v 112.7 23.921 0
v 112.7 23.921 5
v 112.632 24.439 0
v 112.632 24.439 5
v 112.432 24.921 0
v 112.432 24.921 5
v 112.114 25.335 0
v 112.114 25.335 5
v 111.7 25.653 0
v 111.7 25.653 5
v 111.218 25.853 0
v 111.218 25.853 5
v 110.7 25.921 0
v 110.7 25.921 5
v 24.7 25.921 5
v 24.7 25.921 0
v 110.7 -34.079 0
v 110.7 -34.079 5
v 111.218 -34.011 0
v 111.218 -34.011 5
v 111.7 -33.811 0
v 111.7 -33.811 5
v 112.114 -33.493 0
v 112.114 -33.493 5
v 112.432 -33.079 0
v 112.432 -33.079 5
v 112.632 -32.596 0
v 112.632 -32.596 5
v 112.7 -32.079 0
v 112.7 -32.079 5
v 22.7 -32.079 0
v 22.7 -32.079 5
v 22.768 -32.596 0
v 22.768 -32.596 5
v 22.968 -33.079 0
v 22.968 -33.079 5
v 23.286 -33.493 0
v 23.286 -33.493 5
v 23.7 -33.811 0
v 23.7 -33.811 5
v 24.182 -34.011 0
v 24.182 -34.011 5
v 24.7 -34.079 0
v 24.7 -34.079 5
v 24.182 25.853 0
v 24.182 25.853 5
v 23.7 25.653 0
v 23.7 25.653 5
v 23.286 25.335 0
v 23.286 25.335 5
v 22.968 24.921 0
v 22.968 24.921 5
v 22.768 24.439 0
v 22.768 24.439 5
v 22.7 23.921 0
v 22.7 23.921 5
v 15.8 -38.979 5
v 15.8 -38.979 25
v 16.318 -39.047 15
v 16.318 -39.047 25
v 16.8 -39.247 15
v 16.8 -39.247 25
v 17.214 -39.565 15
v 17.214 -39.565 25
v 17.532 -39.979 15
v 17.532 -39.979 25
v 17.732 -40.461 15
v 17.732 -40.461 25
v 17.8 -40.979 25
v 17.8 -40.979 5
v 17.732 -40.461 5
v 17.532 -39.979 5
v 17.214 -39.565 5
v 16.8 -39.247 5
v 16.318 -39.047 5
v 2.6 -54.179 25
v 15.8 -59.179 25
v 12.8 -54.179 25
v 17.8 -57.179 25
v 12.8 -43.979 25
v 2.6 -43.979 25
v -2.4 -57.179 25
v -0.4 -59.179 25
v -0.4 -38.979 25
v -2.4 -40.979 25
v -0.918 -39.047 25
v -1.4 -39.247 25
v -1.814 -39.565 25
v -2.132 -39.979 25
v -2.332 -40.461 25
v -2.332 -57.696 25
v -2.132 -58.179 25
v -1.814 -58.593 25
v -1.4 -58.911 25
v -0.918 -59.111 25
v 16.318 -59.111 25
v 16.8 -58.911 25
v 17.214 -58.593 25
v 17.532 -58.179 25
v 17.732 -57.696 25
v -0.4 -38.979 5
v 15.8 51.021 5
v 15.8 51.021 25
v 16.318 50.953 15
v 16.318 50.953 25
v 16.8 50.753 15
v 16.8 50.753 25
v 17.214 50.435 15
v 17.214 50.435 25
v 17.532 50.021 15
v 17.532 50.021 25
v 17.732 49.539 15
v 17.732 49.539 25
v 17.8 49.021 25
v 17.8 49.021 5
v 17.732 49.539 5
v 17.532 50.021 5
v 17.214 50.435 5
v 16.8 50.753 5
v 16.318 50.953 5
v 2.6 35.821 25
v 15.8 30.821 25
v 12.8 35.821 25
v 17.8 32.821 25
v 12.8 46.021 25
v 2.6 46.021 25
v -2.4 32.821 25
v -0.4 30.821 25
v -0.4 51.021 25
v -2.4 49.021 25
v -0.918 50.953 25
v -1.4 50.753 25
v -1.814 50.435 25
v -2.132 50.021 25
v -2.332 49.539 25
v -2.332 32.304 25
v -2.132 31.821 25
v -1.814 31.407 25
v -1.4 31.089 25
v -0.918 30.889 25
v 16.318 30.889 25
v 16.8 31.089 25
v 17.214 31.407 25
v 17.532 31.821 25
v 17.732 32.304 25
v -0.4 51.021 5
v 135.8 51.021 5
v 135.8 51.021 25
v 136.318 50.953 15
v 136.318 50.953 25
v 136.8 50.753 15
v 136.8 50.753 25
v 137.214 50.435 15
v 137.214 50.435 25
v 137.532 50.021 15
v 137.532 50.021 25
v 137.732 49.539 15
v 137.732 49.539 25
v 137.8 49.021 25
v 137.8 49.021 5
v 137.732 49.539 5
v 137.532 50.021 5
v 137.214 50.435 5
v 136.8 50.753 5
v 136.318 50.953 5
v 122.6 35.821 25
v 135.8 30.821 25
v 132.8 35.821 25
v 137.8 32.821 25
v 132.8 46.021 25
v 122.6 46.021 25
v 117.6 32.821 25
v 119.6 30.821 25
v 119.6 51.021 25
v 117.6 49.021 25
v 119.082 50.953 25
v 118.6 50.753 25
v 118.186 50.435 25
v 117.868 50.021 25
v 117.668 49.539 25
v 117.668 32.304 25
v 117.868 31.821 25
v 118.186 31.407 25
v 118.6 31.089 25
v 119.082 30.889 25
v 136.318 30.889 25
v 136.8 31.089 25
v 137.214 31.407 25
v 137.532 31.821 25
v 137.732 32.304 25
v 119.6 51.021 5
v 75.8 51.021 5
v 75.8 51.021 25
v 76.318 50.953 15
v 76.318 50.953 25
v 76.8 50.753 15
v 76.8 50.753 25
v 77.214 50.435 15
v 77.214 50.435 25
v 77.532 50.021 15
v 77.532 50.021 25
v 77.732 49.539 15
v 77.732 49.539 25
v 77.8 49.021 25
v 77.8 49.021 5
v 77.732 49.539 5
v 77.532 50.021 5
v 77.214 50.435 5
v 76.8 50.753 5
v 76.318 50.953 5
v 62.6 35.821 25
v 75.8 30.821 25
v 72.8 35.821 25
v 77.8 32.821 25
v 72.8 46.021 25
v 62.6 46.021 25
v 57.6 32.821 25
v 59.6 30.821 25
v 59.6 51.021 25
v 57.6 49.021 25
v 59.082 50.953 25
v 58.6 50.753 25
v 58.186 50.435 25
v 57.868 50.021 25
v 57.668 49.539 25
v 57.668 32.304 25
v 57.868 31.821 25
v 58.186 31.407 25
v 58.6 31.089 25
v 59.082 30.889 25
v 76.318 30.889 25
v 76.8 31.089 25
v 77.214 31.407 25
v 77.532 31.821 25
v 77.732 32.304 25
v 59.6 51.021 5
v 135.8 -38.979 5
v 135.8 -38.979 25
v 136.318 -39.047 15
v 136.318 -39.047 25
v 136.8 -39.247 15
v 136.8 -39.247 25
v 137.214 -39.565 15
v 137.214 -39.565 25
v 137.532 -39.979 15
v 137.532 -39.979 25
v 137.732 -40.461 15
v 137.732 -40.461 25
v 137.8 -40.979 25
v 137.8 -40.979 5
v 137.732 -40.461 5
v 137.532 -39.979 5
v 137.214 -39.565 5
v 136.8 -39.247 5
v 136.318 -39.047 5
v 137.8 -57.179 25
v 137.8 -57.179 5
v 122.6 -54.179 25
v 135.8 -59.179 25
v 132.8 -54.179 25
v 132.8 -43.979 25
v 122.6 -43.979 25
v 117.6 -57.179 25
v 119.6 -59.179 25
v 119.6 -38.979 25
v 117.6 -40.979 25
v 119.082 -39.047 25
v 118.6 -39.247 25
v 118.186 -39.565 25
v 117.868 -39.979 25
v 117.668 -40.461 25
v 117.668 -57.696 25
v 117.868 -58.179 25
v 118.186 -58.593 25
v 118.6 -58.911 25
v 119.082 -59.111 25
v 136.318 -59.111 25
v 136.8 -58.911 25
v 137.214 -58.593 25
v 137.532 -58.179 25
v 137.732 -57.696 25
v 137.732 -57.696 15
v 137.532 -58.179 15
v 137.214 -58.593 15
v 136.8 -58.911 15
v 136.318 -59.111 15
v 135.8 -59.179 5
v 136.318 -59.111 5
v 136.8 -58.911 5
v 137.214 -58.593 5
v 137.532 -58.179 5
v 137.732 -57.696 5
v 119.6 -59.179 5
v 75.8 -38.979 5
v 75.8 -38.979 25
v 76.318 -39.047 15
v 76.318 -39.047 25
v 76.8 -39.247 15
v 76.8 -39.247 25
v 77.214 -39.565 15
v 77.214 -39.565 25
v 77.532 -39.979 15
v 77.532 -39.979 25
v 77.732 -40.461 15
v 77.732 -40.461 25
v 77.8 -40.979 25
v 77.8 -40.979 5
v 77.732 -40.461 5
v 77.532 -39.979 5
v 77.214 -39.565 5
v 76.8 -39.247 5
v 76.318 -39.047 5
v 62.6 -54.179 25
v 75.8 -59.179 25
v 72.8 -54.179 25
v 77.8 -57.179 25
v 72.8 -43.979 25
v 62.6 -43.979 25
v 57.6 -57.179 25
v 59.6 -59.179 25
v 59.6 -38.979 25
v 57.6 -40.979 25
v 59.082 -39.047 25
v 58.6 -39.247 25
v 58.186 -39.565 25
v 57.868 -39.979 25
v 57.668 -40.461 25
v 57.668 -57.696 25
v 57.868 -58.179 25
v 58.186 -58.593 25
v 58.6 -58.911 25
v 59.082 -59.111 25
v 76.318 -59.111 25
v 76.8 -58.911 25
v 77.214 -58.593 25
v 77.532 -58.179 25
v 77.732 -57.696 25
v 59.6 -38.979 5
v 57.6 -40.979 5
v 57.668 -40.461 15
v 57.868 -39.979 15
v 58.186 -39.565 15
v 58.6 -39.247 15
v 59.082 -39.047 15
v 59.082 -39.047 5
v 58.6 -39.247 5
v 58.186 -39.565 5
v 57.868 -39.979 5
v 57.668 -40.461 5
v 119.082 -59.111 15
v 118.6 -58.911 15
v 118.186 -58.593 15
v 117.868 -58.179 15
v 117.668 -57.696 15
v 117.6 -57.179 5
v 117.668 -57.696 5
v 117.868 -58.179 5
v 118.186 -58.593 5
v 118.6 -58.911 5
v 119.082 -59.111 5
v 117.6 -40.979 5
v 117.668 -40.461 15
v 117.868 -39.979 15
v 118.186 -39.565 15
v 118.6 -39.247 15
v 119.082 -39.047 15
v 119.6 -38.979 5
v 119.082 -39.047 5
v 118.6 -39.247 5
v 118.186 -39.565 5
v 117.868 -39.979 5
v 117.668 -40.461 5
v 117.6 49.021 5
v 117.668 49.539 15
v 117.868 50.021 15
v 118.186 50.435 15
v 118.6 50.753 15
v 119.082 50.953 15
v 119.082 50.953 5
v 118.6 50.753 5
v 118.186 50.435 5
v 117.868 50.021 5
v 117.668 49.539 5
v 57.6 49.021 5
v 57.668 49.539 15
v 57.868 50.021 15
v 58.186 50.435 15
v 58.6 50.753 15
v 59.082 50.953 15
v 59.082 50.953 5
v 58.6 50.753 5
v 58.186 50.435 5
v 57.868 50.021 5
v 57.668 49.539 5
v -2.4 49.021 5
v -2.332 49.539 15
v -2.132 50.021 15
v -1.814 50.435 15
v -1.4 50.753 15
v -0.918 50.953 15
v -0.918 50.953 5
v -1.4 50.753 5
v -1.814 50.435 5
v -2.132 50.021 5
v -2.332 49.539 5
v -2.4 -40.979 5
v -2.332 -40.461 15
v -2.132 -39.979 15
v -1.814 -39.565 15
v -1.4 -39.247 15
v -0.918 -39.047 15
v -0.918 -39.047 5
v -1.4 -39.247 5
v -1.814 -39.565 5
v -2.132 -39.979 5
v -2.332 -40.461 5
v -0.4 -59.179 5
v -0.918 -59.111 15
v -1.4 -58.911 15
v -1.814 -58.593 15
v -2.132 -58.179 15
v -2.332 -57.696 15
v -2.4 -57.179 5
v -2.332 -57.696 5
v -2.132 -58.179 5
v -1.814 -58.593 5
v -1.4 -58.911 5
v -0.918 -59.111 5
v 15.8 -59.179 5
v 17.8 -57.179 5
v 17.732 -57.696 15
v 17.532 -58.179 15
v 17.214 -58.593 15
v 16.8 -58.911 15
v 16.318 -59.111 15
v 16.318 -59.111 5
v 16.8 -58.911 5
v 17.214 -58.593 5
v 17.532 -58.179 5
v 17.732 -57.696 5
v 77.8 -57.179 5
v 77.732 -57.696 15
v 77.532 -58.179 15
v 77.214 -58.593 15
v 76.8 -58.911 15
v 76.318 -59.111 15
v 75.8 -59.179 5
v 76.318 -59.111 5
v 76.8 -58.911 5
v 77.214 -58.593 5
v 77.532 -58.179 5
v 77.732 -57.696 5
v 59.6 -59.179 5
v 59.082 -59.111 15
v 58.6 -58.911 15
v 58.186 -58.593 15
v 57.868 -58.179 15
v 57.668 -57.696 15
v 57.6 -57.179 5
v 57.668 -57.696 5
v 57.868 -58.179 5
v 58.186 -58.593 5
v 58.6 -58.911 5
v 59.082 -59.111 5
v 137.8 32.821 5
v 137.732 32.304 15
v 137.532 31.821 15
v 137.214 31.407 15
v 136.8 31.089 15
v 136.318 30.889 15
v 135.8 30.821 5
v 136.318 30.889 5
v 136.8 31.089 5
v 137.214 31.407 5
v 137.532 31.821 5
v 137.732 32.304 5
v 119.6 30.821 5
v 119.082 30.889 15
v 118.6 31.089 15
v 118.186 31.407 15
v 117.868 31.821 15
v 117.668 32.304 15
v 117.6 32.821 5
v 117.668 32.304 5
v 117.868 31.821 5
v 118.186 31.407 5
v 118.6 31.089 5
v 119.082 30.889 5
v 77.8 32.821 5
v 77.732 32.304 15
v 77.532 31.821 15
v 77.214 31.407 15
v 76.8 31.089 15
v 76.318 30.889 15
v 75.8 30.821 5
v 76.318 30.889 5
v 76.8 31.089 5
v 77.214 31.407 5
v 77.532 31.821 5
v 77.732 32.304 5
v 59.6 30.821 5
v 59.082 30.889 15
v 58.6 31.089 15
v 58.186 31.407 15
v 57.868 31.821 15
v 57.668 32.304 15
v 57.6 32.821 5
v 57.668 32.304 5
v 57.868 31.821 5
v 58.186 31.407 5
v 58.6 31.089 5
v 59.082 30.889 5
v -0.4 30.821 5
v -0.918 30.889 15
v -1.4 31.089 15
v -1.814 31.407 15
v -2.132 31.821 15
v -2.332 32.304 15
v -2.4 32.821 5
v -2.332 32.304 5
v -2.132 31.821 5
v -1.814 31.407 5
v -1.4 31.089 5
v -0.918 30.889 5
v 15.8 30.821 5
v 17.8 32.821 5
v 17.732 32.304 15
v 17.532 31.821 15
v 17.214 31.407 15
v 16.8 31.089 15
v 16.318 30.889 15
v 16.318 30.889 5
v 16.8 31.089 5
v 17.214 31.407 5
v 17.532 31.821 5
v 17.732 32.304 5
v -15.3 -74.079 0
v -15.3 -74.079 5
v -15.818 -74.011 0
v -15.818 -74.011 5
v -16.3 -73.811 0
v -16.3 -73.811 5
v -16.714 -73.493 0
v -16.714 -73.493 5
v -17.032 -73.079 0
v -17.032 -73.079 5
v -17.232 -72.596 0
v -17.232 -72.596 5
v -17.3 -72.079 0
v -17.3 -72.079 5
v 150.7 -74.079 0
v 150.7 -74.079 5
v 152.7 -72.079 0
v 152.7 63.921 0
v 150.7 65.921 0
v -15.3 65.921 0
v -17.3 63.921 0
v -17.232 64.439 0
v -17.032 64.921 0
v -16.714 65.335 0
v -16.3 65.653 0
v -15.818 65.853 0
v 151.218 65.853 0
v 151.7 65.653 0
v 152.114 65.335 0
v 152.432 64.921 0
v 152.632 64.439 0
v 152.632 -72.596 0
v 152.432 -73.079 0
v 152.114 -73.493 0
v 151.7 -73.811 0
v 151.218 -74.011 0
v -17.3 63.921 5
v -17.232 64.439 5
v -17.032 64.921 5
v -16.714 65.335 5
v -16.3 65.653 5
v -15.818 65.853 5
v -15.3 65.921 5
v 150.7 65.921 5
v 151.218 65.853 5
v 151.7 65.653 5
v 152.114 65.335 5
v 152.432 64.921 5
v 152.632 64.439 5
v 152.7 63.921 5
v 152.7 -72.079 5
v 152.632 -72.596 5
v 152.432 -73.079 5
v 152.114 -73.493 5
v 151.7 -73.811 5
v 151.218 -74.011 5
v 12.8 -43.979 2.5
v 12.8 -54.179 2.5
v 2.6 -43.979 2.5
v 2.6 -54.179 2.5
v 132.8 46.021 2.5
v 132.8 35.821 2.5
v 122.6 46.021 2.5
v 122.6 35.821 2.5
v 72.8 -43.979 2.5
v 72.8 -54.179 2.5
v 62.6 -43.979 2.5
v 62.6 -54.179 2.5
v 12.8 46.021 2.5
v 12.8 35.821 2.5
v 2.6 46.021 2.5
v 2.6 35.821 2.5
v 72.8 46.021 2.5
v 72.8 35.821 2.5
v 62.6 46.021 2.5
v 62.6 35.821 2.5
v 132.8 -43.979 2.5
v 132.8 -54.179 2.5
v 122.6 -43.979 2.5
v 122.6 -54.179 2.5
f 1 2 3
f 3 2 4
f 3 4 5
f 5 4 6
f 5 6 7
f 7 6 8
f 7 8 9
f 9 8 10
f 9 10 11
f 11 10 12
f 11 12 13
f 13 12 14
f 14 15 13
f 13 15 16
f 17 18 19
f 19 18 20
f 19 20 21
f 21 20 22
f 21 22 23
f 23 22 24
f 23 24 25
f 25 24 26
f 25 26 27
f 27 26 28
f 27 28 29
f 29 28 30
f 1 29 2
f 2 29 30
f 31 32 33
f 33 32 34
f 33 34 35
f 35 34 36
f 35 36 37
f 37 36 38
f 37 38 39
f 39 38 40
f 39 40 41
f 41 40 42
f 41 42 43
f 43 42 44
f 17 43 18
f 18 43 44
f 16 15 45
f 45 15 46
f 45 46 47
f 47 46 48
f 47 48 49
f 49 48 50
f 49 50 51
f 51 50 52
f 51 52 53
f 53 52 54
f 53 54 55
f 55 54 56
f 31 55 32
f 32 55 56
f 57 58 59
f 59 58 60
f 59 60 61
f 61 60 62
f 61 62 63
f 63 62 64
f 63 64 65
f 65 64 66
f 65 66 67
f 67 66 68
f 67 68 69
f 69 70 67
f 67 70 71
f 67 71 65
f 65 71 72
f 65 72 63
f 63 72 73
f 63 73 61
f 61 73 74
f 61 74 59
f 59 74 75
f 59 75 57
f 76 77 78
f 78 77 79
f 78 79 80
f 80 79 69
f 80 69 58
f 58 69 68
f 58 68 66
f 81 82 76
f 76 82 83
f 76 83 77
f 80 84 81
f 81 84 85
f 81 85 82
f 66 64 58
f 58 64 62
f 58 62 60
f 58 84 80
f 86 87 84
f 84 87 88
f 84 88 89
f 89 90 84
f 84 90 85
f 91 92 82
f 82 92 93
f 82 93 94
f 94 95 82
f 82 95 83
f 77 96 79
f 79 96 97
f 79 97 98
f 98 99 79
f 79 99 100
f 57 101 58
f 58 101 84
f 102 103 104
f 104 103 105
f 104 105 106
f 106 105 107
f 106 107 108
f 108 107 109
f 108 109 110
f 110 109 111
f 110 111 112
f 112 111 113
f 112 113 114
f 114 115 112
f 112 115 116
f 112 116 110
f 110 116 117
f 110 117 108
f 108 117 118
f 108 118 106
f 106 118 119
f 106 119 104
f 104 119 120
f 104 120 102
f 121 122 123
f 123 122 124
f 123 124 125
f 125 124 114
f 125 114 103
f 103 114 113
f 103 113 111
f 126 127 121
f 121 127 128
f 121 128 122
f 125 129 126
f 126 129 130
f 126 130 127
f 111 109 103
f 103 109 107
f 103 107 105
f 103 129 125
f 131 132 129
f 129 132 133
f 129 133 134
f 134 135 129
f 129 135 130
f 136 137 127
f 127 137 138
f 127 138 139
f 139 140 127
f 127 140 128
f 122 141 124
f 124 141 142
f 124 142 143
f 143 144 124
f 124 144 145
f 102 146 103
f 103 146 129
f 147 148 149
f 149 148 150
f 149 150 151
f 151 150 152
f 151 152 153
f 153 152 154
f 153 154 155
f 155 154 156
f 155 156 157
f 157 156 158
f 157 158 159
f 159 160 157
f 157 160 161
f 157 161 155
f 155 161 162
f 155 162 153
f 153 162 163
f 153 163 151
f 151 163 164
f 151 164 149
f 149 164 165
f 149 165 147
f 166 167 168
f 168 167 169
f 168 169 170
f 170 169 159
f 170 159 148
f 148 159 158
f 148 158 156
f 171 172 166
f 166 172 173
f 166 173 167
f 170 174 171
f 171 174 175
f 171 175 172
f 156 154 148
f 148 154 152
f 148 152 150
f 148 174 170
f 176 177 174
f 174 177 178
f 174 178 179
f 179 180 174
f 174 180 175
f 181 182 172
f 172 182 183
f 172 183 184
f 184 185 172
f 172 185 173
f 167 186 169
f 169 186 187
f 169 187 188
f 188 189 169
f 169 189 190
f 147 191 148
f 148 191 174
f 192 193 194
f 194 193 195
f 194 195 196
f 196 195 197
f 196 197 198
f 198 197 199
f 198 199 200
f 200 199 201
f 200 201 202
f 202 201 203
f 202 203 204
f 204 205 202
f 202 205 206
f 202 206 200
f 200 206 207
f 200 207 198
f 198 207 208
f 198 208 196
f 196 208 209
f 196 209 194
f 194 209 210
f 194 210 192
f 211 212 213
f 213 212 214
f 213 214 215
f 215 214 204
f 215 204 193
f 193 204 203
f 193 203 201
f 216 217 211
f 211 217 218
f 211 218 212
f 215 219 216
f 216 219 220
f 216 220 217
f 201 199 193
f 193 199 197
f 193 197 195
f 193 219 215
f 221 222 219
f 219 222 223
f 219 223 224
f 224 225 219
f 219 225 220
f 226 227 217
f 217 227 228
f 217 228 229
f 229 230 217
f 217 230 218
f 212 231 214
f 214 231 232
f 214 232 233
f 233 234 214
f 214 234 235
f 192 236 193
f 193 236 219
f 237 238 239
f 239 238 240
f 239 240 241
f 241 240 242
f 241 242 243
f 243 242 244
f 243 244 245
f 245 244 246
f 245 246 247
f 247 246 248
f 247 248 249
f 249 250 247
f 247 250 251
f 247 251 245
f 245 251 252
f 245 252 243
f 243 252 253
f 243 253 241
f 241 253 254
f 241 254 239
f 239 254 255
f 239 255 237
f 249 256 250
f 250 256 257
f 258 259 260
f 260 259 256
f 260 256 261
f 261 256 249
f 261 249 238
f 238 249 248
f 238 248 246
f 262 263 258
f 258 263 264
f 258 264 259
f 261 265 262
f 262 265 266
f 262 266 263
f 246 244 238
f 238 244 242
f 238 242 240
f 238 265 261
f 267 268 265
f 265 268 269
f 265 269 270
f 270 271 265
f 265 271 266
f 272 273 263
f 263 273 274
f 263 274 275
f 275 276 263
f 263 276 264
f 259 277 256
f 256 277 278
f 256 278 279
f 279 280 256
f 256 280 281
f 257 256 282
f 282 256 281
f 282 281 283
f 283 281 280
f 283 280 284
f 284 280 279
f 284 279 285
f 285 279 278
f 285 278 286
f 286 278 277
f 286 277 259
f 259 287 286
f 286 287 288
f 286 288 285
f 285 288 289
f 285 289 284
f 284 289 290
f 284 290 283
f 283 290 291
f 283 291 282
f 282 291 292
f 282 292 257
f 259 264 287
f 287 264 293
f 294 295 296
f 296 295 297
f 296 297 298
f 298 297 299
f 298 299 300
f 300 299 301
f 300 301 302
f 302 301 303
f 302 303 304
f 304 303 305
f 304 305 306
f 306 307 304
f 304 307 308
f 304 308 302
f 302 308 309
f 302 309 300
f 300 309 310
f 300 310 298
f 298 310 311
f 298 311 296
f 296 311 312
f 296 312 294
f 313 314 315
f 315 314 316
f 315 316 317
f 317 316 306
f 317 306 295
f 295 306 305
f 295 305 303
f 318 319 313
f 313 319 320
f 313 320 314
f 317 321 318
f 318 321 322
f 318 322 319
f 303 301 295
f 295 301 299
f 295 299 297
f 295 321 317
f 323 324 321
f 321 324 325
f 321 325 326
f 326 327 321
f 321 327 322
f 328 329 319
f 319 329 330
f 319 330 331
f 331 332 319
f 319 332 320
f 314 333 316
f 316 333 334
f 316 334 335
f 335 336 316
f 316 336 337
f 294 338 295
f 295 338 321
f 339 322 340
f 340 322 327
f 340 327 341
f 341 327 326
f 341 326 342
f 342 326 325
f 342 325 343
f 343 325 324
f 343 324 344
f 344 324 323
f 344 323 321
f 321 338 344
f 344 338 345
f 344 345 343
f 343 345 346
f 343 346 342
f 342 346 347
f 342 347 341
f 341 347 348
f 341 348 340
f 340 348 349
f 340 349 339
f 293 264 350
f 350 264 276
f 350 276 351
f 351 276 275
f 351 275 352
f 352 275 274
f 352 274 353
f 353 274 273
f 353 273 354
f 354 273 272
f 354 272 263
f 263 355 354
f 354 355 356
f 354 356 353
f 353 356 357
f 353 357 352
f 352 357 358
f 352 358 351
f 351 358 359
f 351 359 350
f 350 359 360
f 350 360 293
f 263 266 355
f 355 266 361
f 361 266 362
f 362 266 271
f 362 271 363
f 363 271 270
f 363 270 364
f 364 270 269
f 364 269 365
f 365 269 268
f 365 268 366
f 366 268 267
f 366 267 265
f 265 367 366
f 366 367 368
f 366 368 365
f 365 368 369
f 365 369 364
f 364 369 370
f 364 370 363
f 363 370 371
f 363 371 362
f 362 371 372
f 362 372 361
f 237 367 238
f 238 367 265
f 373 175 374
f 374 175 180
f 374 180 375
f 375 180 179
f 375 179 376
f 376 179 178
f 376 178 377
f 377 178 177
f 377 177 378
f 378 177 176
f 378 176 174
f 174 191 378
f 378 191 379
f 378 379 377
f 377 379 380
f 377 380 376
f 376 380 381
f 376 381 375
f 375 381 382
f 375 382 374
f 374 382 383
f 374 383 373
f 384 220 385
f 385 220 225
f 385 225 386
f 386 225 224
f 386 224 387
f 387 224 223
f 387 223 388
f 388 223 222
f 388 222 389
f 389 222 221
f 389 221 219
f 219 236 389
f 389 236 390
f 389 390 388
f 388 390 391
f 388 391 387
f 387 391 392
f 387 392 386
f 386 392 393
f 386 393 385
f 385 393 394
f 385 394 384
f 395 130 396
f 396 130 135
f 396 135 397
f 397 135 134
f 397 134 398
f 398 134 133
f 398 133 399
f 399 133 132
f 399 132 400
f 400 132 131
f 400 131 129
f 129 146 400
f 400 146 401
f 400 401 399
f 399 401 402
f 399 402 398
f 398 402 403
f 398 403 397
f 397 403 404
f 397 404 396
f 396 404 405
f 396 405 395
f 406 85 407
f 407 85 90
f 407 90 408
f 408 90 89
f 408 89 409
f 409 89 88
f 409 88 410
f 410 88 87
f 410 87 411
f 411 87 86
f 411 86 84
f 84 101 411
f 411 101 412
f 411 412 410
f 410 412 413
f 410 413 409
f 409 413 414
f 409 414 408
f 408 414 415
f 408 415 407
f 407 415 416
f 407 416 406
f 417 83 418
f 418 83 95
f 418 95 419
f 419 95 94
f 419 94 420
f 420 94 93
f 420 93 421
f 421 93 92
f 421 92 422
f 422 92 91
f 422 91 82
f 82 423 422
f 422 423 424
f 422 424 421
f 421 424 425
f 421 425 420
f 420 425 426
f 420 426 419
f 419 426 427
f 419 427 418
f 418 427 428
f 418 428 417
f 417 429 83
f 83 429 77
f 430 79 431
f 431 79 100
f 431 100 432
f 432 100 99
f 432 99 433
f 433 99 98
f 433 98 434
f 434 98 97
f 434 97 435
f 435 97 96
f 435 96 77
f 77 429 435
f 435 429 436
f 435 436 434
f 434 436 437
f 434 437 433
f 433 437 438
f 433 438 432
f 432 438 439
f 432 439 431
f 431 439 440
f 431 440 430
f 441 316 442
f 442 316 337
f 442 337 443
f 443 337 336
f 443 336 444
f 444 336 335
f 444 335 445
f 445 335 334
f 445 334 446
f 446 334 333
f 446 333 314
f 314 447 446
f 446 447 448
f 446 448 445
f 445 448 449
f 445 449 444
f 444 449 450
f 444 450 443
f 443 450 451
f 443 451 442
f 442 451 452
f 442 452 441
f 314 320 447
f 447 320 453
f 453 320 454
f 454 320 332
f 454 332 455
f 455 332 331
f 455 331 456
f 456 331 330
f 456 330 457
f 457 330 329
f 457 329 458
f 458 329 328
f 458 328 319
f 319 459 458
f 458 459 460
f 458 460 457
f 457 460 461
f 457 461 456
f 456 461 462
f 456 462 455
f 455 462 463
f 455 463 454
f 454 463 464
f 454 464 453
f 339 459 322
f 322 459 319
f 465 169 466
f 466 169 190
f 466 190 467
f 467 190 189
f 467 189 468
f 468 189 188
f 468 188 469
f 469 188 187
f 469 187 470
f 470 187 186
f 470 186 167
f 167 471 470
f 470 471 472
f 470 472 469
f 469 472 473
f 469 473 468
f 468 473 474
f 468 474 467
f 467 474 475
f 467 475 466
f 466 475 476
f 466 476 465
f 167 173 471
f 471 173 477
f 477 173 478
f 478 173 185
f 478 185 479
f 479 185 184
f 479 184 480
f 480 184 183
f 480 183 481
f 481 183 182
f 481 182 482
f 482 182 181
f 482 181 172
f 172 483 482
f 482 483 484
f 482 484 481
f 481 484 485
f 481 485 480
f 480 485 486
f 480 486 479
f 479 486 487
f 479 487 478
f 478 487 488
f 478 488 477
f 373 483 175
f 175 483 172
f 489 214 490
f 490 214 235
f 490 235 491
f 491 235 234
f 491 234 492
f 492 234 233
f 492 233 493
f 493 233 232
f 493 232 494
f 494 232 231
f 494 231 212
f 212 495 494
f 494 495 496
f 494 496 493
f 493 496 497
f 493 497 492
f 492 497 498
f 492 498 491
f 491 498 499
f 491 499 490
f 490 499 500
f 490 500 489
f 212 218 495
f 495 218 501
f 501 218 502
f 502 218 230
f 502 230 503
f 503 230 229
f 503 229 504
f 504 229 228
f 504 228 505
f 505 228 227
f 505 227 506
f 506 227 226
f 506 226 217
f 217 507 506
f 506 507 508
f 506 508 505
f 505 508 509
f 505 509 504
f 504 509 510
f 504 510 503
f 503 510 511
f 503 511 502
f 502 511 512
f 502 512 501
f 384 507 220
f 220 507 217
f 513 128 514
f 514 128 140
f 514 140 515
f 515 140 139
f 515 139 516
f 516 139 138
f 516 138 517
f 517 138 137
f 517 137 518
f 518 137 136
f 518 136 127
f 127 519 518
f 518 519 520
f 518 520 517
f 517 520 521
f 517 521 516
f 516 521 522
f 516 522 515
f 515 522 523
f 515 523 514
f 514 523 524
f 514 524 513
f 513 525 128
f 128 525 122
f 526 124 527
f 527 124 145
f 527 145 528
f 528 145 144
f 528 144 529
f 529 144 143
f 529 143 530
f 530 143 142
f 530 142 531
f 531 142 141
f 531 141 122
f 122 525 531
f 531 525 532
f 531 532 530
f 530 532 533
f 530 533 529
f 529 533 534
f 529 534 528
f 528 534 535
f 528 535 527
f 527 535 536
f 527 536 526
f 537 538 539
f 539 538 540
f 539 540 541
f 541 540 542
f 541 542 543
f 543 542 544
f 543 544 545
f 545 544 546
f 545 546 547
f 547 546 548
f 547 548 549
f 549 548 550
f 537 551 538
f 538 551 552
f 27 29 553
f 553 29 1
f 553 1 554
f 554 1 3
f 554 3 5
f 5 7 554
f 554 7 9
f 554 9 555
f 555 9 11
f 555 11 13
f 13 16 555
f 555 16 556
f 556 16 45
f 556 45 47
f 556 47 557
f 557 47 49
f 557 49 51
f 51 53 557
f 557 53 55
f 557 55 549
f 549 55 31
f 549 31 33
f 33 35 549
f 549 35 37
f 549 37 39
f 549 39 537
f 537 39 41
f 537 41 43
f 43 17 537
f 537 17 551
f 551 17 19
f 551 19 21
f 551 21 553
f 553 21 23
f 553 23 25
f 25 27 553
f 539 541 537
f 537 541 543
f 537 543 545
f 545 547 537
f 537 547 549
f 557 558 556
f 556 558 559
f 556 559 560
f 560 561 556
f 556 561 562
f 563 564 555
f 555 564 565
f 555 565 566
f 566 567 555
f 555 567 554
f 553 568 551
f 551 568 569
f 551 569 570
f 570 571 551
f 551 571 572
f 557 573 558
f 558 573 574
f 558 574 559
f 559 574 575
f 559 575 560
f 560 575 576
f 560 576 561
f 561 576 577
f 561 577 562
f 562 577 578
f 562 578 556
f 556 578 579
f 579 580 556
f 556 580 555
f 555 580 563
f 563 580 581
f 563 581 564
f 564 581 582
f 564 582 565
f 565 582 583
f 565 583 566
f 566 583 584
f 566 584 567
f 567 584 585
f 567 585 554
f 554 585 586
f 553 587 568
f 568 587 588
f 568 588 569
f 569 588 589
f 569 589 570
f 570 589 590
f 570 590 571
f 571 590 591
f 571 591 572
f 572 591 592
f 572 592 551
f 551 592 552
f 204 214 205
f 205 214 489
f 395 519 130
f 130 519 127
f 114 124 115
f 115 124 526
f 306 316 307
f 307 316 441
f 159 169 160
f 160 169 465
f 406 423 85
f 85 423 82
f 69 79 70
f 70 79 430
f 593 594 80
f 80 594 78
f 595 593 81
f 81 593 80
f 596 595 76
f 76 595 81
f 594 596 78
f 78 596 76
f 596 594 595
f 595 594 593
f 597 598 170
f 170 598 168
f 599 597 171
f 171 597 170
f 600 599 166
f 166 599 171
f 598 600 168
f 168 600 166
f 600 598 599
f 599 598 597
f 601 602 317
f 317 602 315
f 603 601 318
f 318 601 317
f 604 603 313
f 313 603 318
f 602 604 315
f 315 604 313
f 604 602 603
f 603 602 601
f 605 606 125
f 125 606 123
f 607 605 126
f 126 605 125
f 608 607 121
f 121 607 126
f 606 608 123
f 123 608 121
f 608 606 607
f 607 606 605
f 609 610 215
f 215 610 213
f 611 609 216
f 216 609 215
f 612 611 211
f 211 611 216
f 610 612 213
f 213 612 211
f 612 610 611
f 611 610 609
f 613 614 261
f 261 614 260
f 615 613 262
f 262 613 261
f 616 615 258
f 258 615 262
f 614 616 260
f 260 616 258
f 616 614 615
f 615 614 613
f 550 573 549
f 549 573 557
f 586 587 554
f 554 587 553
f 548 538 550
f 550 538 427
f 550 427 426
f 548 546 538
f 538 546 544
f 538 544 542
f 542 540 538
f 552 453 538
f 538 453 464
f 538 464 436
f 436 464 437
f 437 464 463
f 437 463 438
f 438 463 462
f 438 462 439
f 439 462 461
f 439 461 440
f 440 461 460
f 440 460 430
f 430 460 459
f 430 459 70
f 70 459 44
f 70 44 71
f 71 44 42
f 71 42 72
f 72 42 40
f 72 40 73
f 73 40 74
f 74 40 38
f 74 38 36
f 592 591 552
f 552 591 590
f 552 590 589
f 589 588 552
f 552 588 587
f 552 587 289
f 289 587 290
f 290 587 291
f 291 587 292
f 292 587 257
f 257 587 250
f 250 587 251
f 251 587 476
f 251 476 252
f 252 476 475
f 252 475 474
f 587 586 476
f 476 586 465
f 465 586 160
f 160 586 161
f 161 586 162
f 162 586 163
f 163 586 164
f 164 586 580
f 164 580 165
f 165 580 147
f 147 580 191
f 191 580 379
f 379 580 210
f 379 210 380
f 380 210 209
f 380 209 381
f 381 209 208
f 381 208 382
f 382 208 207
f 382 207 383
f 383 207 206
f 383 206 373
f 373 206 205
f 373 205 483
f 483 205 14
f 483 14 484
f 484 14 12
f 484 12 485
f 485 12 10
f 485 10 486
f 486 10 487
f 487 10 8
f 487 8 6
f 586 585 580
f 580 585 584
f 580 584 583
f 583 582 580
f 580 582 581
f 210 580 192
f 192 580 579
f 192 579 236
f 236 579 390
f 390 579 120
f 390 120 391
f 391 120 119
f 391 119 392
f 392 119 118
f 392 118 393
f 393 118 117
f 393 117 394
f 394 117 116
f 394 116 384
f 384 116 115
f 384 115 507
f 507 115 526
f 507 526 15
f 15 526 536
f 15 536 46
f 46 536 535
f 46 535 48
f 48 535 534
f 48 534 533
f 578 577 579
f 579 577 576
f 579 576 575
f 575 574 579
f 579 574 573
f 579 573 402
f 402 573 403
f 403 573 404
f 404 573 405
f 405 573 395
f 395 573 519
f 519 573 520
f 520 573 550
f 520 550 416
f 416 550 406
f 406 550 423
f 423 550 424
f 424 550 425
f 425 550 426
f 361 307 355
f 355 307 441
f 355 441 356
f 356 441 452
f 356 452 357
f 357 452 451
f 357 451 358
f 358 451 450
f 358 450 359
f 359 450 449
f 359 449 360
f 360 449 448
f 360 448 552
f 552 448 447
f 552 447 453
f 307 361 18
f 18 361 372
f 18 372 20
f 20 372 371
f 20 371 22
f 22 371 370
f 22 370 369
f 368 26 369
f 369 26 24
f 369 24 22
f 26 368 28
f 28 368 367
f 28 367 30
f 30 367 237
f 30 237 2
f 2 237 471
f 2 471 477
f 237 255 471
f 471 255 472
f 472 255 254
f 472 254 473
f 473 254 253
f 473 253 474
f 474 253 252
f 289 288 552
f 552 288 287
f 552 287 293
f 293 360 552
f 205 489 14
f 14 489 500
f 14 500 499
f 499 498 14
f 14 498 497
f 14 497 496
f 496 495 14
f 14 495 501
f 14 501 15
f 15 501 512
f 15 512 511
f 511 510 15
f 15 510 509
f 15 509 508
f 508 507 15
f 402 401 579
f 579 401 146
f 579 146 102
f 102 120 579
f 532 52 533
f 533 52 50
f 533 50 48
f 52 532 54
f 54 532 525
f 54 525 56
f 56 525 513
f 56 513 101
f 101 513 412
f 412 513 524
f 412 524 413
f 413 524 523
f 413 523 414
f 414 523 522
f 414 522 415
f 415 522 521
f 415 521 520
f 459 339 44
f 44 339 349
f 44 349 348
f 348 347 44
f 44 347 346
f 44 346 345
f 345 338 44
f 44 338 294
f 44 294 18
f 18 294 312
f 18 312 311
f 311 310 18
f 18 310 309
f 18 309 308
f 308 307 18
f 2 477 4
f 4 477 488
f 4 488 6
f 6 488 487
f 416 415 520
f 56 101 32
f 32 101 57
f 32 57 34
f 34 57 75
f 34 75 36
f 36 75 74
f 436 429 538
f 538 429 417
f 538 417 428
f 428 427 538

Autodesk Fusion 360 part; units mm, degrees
sketch "Sketch1" plane through (0, 0, 0) normal (0, 0, 1) x (1, 0, 0)
  line L0 (-17.3001, 65.9212) -> (152.6999, 65.9212)
  line L1 (152.6999, 65.9212) -> (152.6999, -74.0788)
  line L2 (152.6999, -74.0788) -> (-17.3001, -74.0788)
  line L3 (-17.3001, -74.0788) -> (-17.3001, 65.9212)
  dimension "d1" = 140
  dimension "d2" = 170
extrude "Extrude1" add sketch "Sketch1" along normal blind 5
sketch "Sketch10" plane through (0, 0, 5) normal (0, 0, 1) x (-1, 0, 0)
  line L0 (17.3001, 74.0788) -> (-152.6999, 74.0788)
  line L1 (-152.6999, 74.0788) -> (-152.6999, -65.9212)
  line L2 (-152.6999, -65.9212) -> (17.3001, -65.9212)
  line L3 (17.3001, -65.9212) -> (17.3001, 74.0788)
  line L4 (-7.6999, -40.9212) -> (-127.6999, -40.9212)
  line L5 (-127.6999, -40.9212) -> (-127.6999, 49.0788)
  line L6 (-127.6999, 49.0788) -> (-7.6999, 49.0788)
  line L7 (-7.6999, 49.0788) -> (-7.6999, -40.9212)
  line L8 (17.3001, -65.9212) -> (-152.6999, -65.9212)
  line L9 (-152.6999, 74.0788) -> (17.3001, 74.0788)
  line L10 (17.3001, 74.0788) -> (17.3001, -65.9212)
  line L11 (-152.6999, -65.9212) -> (-152.6999, 74.0788)
  line L12 (-2.5999, -46.0212) -> (-12.7999, -46.0212)
  line L13 (-12.7999, -46.0212) -> (-12.7999, -35.8212)
  line L14 (-12.7999, -35.8212) -> (-2.5999, -35.8212)
  line L15 (-2.5999, -35.8212) -> (-2.5999, -46.0212)
  line L16 (-122.5999, -46.0212) -> (-132.7999, -46.0212)
  line L17 (-132.7999, -46.0212) -> (-132.7999, -35.8212)
  line L18 (-132.7999, -35.8212) -> (-122.5999, -35.8212)
  line L19 (-122.5999, -35.8212) -> (-122.5999, -46.0212)
  line L20 (-62.5999, -46.0212) -> (-72.7999, -46.0212)
  line L21 (-72.7999, -46.0212) -> (-72.7999, -35.8212)
  line L22 (-72.7999, -35.8212) -> (-62.5999, -35.8212)
  line L23 (-62.5999, -35.8212) -> (-62.5999, -46.0212)
  line L24 (-2.5999, 43.9788) -> (-12.7999, 43.9788)
  line L25 (-12.7999, 43.9788) -> (-12.7999, 54.1788)
  line L26 (-12.7999, 54.1788) -> (-2.5999, 54.1788)
  line L27 (-2.5999, 54.1788) -> (-2.5999, 43.9788)
  line L28 (-122.5999, 43.9788) -> (-132.7999, 43.9788)
  line L29 (-132.7999, 43.9788) -> (-132.7999, 54.1788)
  line L30 (-132.7999, 54.1788) -> (-122.5999, 54.1788)
  line L31 (-122.5999, 54.1788) -> (-122.5999, 43.9788)
  line L32 (-62.5999, 43.9788) -> (-72.7999, 43.9788)
  line L33 (-72.7999, 43.9788) -> (-72.7999, 54.1788)
  line L34 (-72.7999, 54.1788) -> (-62.5999, 54.1788)
  line L35 (-62.5999, 54.1788) -> (-62.5999, 43.9788)
  line L36 (-22.6999, -25.9212) -> (-112.6999, -25.9212)
  line L37 (-112.6999, -25.9212) -> (-112.6999, 34.0788)
  line L38 (-112.6999, 34.0788) -> (-22.6999, 34.0788)
  line L39 (-22.6999, 34.0788) -> (-22.6999, -25.9212)
  line L40 (2.4001, -51.0212) -> (-17.7999, -51.0212)
  line L41 (-17.7999, -51.0212) -> (-17.7999, -30.8212)
  line L42 (-17.7999, -30.8212) -> (2.4001, -30.8212)
  line L43 (2.4001, -30.8212) -> (2.4001, -51.0212)
  line L44 (-57.5999, -51.0212) -> (-77.7999, -51.0212)
  line L45 (-77.7999, -51.0212) -> (-77.7999, -30.8212)
  line L46 (-77.7999, -30.8212) -> (-57.5999, -30.8212)
  line L47 (-57.5999, -30.8212) -> (-57.5999, -51.0212)
  line L48 (-117.5999, -51.0212) -> (-137.7999, -51.0212)
  line L49 (-137.7999, -51.0212) -> (-137.7999, -30.8212)
  line L50 (-137.7999, -30.8212) -> (-117.5999, -30.8212)
  line L51 (-117.5999, -30.8212) -> (-117.5999, -51.0212)
  line L52 (-117.5999, 38.9788) -> (-137.7999, 38.9788)
  line L53 (-137.7999, 38.9788) -> (-137.7999, 59.1788)
  line L54 (-137.7999, 59.1788) -> (-117.5999, 59.1788)
  line L55 (-117.5999, 59.1788) -> (-117.5999, 38.9788)
  line L56 (-57.5999, 38.9788) -> (-77.7999, 38.9788)
  line L57 (-77.7999, 38.9788) -> (-77.7999, 59.1788)
  line L58 (-77.7999, 59.1788) -> (-57.5999, 59.1788)
  line L59 (-57.5999, 59.1788) -> (-57.5999, 38.9788)
  line L60 (2.4001, 38.9788) -> (-17.7999, 38.9788)
  line L61 (-17.7999, 38.9788) -> (-17.7999, 59.1788)
  line L62 (-17.7999, 59.1788) -> (2.4001, 59.1788)
  line L63 (2.4001, 59.1788) -> (2.4001, 38.9788)
  dimension "d65" = 25
  dimension "d66" = 25
  dimension "d67" = 25
  dimension "d68" = 25
  dimension "d69" = 5.1
  dimension "d70" = 5.1
  dimension "d71" = 5.1
  dimension "d72" = 5.1
  dimension "d73" = 5.1
  dimension "d74" = 5.1
  dimension "d75" = 5.1
  dimension "d76" = 5.1
  dimension "d77" = 109.8
  dimension "d78" = 19.9
  dimension "d79" = 19.9
  dimension "d80" = 49.8
  dimension "d81" = 49.8
  dimension "d82" = 5.1
  dimension "d83" = 5.1
  dimension "d84" = 5.1
  dimension "d85" = 5.1
  dimension "d86" = 5.1
  dimension "d87" = 5.1
  dimension "d88" = 5.1
  dimension "d89" = 5.1
  dimension "d90" = 5.1
  dimension "d91" = 5.1
  dimension "d92" = 49.8
  dimension "d93" = 49.8
  dimension "d94" = 5.1
  dimension "d95" = 5.1
  dimension "d96" = 15
  dimension "d97" = 15
  dimension "d98" = 15
  dimension "d99" = 15
  dimension "d100" = 5
  dimension "d101" = 5
  dimension "d102" = 5
  dimension "d103" = 5
  dimension "d104" = 5
  dimension "d105" = 5
  dimension "d106" = 5
  dimension "d107" = 5
  dimension "d108" = 5
  dimension "d109" = 5
  dimension "d110" = 5
  dimension "d111" = 5
  dimension "d112" = 5
  dimension "d113" = 5
  dimension "d114" = 5
  dimension "d115" = 5
  dimension "d116" = 5
  dimension "d117" = 5
  dimension "d118" = 5
  dimension "d119" = 5
  dimension "d120" = 5
  dimension "d121" = 5
  dimension "d122" = 5
  dimension "d123" = 5
extrude "Extrude8" cut sketch "Sketch10" against normal blind 5 contours L36 L37 L38 L39
extrude "Extrude9" cut sketch "Sketch10" against normal blind 2.5 contours L4 L7 L12 L13 L14 L15 | L4 L7 L13 L14 | L4 L20 L21 L23 | L4 L21 L22 L23 | L6 L7 L24 L25 | L6 L7 L24 L25 L26 L27 | L6 L32 L33 L35 | L6 L33 L34 L35 | L4 L5 L16 L17 L18 L19 | L4 L5 L18 L19 | L5 L6 L28 L29 L30 L31 | L5 L6 L28 L31
extrude "Extrude10" add sketch "Sketch10" along normal blind 10 contours L4 L7 L12 L13 L14 L15 L40 L41 L42 L43 | L4 L7 L13 L14 L41 L42 | L4 L20 L21 L23 L44 L45 L47 | L4 L21 L22 L23 L45 L46 L47 | L6 L7 L24 L25 L60 L61 | L6 L7 L24 L25 L26 L27 L60 L61 L62 L63 | L6 L32 L33 L35 L56 L57 L59 | L6 L33 L34 L35 L57 L58 L59 | L4 L5 L16 L17 L18 L19 L48 L49 L50 L51 | L4 L5 L18 L19 L50 L51 | L5 L6 L28 L29 L30 L31 L52 L53 L54 L55 | L5 L6 L28 L31 L52 L55
fillet "Fillet1" radius 2 4 edges at (152.6999, -74.0788, 2.5) (152.6999, 65.9212, 2.5) (-17.3001, 65.9212, 2.5) (-17.3001, -74.0788, 2.5)
extrude "Extrude11" add 6 faces at (5.9999, 49.3545, 15) (76.1332, 39.2212, 15) (136.1332, 39.2212, 15) (136.1332, -50.7788, 15) (76.1332, -50.7788, 15) (5.9999, -40.6455, 15) along direction (0, 0, 1) blind 10
fillet "Fillet2" radius 2 24 edges at (17.7999, 30.8212, 15) (-2.4001, 30.8212, 15) (57.5999, 30.8212, 15) (77.7999, 30.8212, 15) (117.5999, 30.8212, 15) (137.7999, 30.8212, 15) (57.5999, -59.1788, 15) (77.7999, -59.1788, 15) (17.7999, -59.1788, 15) (-2.4001, -59.1788, 15) (-2.4001, -38.9788, 15) (-2.4001, 51.0212, 15) (57.5999, 51.0212, 15) (117.5999, 51.0212, 15) (117.5999, -38.9788, 15) (117.5999, -59.1788, 15) (57.5999, -38.9788, 15) (77.7999, -38.9788, 15) (137.7999, -59.1788, 15) (137.7999, -38.9788, 15) (77.7999, 51.0212, 15) (137.7999, 51.0212, 15) (17.7999, 51.0212, 15) (17.7999, -38.9788, 15)
fillet "Fillet3" radius 2 4 edges at (22.6999, 25.9212, 2.5) (22.6999, -34.0788, 2.5) (112.6999, -34.0788, 2.5) (112.6999, 25.9212, 2.5)
